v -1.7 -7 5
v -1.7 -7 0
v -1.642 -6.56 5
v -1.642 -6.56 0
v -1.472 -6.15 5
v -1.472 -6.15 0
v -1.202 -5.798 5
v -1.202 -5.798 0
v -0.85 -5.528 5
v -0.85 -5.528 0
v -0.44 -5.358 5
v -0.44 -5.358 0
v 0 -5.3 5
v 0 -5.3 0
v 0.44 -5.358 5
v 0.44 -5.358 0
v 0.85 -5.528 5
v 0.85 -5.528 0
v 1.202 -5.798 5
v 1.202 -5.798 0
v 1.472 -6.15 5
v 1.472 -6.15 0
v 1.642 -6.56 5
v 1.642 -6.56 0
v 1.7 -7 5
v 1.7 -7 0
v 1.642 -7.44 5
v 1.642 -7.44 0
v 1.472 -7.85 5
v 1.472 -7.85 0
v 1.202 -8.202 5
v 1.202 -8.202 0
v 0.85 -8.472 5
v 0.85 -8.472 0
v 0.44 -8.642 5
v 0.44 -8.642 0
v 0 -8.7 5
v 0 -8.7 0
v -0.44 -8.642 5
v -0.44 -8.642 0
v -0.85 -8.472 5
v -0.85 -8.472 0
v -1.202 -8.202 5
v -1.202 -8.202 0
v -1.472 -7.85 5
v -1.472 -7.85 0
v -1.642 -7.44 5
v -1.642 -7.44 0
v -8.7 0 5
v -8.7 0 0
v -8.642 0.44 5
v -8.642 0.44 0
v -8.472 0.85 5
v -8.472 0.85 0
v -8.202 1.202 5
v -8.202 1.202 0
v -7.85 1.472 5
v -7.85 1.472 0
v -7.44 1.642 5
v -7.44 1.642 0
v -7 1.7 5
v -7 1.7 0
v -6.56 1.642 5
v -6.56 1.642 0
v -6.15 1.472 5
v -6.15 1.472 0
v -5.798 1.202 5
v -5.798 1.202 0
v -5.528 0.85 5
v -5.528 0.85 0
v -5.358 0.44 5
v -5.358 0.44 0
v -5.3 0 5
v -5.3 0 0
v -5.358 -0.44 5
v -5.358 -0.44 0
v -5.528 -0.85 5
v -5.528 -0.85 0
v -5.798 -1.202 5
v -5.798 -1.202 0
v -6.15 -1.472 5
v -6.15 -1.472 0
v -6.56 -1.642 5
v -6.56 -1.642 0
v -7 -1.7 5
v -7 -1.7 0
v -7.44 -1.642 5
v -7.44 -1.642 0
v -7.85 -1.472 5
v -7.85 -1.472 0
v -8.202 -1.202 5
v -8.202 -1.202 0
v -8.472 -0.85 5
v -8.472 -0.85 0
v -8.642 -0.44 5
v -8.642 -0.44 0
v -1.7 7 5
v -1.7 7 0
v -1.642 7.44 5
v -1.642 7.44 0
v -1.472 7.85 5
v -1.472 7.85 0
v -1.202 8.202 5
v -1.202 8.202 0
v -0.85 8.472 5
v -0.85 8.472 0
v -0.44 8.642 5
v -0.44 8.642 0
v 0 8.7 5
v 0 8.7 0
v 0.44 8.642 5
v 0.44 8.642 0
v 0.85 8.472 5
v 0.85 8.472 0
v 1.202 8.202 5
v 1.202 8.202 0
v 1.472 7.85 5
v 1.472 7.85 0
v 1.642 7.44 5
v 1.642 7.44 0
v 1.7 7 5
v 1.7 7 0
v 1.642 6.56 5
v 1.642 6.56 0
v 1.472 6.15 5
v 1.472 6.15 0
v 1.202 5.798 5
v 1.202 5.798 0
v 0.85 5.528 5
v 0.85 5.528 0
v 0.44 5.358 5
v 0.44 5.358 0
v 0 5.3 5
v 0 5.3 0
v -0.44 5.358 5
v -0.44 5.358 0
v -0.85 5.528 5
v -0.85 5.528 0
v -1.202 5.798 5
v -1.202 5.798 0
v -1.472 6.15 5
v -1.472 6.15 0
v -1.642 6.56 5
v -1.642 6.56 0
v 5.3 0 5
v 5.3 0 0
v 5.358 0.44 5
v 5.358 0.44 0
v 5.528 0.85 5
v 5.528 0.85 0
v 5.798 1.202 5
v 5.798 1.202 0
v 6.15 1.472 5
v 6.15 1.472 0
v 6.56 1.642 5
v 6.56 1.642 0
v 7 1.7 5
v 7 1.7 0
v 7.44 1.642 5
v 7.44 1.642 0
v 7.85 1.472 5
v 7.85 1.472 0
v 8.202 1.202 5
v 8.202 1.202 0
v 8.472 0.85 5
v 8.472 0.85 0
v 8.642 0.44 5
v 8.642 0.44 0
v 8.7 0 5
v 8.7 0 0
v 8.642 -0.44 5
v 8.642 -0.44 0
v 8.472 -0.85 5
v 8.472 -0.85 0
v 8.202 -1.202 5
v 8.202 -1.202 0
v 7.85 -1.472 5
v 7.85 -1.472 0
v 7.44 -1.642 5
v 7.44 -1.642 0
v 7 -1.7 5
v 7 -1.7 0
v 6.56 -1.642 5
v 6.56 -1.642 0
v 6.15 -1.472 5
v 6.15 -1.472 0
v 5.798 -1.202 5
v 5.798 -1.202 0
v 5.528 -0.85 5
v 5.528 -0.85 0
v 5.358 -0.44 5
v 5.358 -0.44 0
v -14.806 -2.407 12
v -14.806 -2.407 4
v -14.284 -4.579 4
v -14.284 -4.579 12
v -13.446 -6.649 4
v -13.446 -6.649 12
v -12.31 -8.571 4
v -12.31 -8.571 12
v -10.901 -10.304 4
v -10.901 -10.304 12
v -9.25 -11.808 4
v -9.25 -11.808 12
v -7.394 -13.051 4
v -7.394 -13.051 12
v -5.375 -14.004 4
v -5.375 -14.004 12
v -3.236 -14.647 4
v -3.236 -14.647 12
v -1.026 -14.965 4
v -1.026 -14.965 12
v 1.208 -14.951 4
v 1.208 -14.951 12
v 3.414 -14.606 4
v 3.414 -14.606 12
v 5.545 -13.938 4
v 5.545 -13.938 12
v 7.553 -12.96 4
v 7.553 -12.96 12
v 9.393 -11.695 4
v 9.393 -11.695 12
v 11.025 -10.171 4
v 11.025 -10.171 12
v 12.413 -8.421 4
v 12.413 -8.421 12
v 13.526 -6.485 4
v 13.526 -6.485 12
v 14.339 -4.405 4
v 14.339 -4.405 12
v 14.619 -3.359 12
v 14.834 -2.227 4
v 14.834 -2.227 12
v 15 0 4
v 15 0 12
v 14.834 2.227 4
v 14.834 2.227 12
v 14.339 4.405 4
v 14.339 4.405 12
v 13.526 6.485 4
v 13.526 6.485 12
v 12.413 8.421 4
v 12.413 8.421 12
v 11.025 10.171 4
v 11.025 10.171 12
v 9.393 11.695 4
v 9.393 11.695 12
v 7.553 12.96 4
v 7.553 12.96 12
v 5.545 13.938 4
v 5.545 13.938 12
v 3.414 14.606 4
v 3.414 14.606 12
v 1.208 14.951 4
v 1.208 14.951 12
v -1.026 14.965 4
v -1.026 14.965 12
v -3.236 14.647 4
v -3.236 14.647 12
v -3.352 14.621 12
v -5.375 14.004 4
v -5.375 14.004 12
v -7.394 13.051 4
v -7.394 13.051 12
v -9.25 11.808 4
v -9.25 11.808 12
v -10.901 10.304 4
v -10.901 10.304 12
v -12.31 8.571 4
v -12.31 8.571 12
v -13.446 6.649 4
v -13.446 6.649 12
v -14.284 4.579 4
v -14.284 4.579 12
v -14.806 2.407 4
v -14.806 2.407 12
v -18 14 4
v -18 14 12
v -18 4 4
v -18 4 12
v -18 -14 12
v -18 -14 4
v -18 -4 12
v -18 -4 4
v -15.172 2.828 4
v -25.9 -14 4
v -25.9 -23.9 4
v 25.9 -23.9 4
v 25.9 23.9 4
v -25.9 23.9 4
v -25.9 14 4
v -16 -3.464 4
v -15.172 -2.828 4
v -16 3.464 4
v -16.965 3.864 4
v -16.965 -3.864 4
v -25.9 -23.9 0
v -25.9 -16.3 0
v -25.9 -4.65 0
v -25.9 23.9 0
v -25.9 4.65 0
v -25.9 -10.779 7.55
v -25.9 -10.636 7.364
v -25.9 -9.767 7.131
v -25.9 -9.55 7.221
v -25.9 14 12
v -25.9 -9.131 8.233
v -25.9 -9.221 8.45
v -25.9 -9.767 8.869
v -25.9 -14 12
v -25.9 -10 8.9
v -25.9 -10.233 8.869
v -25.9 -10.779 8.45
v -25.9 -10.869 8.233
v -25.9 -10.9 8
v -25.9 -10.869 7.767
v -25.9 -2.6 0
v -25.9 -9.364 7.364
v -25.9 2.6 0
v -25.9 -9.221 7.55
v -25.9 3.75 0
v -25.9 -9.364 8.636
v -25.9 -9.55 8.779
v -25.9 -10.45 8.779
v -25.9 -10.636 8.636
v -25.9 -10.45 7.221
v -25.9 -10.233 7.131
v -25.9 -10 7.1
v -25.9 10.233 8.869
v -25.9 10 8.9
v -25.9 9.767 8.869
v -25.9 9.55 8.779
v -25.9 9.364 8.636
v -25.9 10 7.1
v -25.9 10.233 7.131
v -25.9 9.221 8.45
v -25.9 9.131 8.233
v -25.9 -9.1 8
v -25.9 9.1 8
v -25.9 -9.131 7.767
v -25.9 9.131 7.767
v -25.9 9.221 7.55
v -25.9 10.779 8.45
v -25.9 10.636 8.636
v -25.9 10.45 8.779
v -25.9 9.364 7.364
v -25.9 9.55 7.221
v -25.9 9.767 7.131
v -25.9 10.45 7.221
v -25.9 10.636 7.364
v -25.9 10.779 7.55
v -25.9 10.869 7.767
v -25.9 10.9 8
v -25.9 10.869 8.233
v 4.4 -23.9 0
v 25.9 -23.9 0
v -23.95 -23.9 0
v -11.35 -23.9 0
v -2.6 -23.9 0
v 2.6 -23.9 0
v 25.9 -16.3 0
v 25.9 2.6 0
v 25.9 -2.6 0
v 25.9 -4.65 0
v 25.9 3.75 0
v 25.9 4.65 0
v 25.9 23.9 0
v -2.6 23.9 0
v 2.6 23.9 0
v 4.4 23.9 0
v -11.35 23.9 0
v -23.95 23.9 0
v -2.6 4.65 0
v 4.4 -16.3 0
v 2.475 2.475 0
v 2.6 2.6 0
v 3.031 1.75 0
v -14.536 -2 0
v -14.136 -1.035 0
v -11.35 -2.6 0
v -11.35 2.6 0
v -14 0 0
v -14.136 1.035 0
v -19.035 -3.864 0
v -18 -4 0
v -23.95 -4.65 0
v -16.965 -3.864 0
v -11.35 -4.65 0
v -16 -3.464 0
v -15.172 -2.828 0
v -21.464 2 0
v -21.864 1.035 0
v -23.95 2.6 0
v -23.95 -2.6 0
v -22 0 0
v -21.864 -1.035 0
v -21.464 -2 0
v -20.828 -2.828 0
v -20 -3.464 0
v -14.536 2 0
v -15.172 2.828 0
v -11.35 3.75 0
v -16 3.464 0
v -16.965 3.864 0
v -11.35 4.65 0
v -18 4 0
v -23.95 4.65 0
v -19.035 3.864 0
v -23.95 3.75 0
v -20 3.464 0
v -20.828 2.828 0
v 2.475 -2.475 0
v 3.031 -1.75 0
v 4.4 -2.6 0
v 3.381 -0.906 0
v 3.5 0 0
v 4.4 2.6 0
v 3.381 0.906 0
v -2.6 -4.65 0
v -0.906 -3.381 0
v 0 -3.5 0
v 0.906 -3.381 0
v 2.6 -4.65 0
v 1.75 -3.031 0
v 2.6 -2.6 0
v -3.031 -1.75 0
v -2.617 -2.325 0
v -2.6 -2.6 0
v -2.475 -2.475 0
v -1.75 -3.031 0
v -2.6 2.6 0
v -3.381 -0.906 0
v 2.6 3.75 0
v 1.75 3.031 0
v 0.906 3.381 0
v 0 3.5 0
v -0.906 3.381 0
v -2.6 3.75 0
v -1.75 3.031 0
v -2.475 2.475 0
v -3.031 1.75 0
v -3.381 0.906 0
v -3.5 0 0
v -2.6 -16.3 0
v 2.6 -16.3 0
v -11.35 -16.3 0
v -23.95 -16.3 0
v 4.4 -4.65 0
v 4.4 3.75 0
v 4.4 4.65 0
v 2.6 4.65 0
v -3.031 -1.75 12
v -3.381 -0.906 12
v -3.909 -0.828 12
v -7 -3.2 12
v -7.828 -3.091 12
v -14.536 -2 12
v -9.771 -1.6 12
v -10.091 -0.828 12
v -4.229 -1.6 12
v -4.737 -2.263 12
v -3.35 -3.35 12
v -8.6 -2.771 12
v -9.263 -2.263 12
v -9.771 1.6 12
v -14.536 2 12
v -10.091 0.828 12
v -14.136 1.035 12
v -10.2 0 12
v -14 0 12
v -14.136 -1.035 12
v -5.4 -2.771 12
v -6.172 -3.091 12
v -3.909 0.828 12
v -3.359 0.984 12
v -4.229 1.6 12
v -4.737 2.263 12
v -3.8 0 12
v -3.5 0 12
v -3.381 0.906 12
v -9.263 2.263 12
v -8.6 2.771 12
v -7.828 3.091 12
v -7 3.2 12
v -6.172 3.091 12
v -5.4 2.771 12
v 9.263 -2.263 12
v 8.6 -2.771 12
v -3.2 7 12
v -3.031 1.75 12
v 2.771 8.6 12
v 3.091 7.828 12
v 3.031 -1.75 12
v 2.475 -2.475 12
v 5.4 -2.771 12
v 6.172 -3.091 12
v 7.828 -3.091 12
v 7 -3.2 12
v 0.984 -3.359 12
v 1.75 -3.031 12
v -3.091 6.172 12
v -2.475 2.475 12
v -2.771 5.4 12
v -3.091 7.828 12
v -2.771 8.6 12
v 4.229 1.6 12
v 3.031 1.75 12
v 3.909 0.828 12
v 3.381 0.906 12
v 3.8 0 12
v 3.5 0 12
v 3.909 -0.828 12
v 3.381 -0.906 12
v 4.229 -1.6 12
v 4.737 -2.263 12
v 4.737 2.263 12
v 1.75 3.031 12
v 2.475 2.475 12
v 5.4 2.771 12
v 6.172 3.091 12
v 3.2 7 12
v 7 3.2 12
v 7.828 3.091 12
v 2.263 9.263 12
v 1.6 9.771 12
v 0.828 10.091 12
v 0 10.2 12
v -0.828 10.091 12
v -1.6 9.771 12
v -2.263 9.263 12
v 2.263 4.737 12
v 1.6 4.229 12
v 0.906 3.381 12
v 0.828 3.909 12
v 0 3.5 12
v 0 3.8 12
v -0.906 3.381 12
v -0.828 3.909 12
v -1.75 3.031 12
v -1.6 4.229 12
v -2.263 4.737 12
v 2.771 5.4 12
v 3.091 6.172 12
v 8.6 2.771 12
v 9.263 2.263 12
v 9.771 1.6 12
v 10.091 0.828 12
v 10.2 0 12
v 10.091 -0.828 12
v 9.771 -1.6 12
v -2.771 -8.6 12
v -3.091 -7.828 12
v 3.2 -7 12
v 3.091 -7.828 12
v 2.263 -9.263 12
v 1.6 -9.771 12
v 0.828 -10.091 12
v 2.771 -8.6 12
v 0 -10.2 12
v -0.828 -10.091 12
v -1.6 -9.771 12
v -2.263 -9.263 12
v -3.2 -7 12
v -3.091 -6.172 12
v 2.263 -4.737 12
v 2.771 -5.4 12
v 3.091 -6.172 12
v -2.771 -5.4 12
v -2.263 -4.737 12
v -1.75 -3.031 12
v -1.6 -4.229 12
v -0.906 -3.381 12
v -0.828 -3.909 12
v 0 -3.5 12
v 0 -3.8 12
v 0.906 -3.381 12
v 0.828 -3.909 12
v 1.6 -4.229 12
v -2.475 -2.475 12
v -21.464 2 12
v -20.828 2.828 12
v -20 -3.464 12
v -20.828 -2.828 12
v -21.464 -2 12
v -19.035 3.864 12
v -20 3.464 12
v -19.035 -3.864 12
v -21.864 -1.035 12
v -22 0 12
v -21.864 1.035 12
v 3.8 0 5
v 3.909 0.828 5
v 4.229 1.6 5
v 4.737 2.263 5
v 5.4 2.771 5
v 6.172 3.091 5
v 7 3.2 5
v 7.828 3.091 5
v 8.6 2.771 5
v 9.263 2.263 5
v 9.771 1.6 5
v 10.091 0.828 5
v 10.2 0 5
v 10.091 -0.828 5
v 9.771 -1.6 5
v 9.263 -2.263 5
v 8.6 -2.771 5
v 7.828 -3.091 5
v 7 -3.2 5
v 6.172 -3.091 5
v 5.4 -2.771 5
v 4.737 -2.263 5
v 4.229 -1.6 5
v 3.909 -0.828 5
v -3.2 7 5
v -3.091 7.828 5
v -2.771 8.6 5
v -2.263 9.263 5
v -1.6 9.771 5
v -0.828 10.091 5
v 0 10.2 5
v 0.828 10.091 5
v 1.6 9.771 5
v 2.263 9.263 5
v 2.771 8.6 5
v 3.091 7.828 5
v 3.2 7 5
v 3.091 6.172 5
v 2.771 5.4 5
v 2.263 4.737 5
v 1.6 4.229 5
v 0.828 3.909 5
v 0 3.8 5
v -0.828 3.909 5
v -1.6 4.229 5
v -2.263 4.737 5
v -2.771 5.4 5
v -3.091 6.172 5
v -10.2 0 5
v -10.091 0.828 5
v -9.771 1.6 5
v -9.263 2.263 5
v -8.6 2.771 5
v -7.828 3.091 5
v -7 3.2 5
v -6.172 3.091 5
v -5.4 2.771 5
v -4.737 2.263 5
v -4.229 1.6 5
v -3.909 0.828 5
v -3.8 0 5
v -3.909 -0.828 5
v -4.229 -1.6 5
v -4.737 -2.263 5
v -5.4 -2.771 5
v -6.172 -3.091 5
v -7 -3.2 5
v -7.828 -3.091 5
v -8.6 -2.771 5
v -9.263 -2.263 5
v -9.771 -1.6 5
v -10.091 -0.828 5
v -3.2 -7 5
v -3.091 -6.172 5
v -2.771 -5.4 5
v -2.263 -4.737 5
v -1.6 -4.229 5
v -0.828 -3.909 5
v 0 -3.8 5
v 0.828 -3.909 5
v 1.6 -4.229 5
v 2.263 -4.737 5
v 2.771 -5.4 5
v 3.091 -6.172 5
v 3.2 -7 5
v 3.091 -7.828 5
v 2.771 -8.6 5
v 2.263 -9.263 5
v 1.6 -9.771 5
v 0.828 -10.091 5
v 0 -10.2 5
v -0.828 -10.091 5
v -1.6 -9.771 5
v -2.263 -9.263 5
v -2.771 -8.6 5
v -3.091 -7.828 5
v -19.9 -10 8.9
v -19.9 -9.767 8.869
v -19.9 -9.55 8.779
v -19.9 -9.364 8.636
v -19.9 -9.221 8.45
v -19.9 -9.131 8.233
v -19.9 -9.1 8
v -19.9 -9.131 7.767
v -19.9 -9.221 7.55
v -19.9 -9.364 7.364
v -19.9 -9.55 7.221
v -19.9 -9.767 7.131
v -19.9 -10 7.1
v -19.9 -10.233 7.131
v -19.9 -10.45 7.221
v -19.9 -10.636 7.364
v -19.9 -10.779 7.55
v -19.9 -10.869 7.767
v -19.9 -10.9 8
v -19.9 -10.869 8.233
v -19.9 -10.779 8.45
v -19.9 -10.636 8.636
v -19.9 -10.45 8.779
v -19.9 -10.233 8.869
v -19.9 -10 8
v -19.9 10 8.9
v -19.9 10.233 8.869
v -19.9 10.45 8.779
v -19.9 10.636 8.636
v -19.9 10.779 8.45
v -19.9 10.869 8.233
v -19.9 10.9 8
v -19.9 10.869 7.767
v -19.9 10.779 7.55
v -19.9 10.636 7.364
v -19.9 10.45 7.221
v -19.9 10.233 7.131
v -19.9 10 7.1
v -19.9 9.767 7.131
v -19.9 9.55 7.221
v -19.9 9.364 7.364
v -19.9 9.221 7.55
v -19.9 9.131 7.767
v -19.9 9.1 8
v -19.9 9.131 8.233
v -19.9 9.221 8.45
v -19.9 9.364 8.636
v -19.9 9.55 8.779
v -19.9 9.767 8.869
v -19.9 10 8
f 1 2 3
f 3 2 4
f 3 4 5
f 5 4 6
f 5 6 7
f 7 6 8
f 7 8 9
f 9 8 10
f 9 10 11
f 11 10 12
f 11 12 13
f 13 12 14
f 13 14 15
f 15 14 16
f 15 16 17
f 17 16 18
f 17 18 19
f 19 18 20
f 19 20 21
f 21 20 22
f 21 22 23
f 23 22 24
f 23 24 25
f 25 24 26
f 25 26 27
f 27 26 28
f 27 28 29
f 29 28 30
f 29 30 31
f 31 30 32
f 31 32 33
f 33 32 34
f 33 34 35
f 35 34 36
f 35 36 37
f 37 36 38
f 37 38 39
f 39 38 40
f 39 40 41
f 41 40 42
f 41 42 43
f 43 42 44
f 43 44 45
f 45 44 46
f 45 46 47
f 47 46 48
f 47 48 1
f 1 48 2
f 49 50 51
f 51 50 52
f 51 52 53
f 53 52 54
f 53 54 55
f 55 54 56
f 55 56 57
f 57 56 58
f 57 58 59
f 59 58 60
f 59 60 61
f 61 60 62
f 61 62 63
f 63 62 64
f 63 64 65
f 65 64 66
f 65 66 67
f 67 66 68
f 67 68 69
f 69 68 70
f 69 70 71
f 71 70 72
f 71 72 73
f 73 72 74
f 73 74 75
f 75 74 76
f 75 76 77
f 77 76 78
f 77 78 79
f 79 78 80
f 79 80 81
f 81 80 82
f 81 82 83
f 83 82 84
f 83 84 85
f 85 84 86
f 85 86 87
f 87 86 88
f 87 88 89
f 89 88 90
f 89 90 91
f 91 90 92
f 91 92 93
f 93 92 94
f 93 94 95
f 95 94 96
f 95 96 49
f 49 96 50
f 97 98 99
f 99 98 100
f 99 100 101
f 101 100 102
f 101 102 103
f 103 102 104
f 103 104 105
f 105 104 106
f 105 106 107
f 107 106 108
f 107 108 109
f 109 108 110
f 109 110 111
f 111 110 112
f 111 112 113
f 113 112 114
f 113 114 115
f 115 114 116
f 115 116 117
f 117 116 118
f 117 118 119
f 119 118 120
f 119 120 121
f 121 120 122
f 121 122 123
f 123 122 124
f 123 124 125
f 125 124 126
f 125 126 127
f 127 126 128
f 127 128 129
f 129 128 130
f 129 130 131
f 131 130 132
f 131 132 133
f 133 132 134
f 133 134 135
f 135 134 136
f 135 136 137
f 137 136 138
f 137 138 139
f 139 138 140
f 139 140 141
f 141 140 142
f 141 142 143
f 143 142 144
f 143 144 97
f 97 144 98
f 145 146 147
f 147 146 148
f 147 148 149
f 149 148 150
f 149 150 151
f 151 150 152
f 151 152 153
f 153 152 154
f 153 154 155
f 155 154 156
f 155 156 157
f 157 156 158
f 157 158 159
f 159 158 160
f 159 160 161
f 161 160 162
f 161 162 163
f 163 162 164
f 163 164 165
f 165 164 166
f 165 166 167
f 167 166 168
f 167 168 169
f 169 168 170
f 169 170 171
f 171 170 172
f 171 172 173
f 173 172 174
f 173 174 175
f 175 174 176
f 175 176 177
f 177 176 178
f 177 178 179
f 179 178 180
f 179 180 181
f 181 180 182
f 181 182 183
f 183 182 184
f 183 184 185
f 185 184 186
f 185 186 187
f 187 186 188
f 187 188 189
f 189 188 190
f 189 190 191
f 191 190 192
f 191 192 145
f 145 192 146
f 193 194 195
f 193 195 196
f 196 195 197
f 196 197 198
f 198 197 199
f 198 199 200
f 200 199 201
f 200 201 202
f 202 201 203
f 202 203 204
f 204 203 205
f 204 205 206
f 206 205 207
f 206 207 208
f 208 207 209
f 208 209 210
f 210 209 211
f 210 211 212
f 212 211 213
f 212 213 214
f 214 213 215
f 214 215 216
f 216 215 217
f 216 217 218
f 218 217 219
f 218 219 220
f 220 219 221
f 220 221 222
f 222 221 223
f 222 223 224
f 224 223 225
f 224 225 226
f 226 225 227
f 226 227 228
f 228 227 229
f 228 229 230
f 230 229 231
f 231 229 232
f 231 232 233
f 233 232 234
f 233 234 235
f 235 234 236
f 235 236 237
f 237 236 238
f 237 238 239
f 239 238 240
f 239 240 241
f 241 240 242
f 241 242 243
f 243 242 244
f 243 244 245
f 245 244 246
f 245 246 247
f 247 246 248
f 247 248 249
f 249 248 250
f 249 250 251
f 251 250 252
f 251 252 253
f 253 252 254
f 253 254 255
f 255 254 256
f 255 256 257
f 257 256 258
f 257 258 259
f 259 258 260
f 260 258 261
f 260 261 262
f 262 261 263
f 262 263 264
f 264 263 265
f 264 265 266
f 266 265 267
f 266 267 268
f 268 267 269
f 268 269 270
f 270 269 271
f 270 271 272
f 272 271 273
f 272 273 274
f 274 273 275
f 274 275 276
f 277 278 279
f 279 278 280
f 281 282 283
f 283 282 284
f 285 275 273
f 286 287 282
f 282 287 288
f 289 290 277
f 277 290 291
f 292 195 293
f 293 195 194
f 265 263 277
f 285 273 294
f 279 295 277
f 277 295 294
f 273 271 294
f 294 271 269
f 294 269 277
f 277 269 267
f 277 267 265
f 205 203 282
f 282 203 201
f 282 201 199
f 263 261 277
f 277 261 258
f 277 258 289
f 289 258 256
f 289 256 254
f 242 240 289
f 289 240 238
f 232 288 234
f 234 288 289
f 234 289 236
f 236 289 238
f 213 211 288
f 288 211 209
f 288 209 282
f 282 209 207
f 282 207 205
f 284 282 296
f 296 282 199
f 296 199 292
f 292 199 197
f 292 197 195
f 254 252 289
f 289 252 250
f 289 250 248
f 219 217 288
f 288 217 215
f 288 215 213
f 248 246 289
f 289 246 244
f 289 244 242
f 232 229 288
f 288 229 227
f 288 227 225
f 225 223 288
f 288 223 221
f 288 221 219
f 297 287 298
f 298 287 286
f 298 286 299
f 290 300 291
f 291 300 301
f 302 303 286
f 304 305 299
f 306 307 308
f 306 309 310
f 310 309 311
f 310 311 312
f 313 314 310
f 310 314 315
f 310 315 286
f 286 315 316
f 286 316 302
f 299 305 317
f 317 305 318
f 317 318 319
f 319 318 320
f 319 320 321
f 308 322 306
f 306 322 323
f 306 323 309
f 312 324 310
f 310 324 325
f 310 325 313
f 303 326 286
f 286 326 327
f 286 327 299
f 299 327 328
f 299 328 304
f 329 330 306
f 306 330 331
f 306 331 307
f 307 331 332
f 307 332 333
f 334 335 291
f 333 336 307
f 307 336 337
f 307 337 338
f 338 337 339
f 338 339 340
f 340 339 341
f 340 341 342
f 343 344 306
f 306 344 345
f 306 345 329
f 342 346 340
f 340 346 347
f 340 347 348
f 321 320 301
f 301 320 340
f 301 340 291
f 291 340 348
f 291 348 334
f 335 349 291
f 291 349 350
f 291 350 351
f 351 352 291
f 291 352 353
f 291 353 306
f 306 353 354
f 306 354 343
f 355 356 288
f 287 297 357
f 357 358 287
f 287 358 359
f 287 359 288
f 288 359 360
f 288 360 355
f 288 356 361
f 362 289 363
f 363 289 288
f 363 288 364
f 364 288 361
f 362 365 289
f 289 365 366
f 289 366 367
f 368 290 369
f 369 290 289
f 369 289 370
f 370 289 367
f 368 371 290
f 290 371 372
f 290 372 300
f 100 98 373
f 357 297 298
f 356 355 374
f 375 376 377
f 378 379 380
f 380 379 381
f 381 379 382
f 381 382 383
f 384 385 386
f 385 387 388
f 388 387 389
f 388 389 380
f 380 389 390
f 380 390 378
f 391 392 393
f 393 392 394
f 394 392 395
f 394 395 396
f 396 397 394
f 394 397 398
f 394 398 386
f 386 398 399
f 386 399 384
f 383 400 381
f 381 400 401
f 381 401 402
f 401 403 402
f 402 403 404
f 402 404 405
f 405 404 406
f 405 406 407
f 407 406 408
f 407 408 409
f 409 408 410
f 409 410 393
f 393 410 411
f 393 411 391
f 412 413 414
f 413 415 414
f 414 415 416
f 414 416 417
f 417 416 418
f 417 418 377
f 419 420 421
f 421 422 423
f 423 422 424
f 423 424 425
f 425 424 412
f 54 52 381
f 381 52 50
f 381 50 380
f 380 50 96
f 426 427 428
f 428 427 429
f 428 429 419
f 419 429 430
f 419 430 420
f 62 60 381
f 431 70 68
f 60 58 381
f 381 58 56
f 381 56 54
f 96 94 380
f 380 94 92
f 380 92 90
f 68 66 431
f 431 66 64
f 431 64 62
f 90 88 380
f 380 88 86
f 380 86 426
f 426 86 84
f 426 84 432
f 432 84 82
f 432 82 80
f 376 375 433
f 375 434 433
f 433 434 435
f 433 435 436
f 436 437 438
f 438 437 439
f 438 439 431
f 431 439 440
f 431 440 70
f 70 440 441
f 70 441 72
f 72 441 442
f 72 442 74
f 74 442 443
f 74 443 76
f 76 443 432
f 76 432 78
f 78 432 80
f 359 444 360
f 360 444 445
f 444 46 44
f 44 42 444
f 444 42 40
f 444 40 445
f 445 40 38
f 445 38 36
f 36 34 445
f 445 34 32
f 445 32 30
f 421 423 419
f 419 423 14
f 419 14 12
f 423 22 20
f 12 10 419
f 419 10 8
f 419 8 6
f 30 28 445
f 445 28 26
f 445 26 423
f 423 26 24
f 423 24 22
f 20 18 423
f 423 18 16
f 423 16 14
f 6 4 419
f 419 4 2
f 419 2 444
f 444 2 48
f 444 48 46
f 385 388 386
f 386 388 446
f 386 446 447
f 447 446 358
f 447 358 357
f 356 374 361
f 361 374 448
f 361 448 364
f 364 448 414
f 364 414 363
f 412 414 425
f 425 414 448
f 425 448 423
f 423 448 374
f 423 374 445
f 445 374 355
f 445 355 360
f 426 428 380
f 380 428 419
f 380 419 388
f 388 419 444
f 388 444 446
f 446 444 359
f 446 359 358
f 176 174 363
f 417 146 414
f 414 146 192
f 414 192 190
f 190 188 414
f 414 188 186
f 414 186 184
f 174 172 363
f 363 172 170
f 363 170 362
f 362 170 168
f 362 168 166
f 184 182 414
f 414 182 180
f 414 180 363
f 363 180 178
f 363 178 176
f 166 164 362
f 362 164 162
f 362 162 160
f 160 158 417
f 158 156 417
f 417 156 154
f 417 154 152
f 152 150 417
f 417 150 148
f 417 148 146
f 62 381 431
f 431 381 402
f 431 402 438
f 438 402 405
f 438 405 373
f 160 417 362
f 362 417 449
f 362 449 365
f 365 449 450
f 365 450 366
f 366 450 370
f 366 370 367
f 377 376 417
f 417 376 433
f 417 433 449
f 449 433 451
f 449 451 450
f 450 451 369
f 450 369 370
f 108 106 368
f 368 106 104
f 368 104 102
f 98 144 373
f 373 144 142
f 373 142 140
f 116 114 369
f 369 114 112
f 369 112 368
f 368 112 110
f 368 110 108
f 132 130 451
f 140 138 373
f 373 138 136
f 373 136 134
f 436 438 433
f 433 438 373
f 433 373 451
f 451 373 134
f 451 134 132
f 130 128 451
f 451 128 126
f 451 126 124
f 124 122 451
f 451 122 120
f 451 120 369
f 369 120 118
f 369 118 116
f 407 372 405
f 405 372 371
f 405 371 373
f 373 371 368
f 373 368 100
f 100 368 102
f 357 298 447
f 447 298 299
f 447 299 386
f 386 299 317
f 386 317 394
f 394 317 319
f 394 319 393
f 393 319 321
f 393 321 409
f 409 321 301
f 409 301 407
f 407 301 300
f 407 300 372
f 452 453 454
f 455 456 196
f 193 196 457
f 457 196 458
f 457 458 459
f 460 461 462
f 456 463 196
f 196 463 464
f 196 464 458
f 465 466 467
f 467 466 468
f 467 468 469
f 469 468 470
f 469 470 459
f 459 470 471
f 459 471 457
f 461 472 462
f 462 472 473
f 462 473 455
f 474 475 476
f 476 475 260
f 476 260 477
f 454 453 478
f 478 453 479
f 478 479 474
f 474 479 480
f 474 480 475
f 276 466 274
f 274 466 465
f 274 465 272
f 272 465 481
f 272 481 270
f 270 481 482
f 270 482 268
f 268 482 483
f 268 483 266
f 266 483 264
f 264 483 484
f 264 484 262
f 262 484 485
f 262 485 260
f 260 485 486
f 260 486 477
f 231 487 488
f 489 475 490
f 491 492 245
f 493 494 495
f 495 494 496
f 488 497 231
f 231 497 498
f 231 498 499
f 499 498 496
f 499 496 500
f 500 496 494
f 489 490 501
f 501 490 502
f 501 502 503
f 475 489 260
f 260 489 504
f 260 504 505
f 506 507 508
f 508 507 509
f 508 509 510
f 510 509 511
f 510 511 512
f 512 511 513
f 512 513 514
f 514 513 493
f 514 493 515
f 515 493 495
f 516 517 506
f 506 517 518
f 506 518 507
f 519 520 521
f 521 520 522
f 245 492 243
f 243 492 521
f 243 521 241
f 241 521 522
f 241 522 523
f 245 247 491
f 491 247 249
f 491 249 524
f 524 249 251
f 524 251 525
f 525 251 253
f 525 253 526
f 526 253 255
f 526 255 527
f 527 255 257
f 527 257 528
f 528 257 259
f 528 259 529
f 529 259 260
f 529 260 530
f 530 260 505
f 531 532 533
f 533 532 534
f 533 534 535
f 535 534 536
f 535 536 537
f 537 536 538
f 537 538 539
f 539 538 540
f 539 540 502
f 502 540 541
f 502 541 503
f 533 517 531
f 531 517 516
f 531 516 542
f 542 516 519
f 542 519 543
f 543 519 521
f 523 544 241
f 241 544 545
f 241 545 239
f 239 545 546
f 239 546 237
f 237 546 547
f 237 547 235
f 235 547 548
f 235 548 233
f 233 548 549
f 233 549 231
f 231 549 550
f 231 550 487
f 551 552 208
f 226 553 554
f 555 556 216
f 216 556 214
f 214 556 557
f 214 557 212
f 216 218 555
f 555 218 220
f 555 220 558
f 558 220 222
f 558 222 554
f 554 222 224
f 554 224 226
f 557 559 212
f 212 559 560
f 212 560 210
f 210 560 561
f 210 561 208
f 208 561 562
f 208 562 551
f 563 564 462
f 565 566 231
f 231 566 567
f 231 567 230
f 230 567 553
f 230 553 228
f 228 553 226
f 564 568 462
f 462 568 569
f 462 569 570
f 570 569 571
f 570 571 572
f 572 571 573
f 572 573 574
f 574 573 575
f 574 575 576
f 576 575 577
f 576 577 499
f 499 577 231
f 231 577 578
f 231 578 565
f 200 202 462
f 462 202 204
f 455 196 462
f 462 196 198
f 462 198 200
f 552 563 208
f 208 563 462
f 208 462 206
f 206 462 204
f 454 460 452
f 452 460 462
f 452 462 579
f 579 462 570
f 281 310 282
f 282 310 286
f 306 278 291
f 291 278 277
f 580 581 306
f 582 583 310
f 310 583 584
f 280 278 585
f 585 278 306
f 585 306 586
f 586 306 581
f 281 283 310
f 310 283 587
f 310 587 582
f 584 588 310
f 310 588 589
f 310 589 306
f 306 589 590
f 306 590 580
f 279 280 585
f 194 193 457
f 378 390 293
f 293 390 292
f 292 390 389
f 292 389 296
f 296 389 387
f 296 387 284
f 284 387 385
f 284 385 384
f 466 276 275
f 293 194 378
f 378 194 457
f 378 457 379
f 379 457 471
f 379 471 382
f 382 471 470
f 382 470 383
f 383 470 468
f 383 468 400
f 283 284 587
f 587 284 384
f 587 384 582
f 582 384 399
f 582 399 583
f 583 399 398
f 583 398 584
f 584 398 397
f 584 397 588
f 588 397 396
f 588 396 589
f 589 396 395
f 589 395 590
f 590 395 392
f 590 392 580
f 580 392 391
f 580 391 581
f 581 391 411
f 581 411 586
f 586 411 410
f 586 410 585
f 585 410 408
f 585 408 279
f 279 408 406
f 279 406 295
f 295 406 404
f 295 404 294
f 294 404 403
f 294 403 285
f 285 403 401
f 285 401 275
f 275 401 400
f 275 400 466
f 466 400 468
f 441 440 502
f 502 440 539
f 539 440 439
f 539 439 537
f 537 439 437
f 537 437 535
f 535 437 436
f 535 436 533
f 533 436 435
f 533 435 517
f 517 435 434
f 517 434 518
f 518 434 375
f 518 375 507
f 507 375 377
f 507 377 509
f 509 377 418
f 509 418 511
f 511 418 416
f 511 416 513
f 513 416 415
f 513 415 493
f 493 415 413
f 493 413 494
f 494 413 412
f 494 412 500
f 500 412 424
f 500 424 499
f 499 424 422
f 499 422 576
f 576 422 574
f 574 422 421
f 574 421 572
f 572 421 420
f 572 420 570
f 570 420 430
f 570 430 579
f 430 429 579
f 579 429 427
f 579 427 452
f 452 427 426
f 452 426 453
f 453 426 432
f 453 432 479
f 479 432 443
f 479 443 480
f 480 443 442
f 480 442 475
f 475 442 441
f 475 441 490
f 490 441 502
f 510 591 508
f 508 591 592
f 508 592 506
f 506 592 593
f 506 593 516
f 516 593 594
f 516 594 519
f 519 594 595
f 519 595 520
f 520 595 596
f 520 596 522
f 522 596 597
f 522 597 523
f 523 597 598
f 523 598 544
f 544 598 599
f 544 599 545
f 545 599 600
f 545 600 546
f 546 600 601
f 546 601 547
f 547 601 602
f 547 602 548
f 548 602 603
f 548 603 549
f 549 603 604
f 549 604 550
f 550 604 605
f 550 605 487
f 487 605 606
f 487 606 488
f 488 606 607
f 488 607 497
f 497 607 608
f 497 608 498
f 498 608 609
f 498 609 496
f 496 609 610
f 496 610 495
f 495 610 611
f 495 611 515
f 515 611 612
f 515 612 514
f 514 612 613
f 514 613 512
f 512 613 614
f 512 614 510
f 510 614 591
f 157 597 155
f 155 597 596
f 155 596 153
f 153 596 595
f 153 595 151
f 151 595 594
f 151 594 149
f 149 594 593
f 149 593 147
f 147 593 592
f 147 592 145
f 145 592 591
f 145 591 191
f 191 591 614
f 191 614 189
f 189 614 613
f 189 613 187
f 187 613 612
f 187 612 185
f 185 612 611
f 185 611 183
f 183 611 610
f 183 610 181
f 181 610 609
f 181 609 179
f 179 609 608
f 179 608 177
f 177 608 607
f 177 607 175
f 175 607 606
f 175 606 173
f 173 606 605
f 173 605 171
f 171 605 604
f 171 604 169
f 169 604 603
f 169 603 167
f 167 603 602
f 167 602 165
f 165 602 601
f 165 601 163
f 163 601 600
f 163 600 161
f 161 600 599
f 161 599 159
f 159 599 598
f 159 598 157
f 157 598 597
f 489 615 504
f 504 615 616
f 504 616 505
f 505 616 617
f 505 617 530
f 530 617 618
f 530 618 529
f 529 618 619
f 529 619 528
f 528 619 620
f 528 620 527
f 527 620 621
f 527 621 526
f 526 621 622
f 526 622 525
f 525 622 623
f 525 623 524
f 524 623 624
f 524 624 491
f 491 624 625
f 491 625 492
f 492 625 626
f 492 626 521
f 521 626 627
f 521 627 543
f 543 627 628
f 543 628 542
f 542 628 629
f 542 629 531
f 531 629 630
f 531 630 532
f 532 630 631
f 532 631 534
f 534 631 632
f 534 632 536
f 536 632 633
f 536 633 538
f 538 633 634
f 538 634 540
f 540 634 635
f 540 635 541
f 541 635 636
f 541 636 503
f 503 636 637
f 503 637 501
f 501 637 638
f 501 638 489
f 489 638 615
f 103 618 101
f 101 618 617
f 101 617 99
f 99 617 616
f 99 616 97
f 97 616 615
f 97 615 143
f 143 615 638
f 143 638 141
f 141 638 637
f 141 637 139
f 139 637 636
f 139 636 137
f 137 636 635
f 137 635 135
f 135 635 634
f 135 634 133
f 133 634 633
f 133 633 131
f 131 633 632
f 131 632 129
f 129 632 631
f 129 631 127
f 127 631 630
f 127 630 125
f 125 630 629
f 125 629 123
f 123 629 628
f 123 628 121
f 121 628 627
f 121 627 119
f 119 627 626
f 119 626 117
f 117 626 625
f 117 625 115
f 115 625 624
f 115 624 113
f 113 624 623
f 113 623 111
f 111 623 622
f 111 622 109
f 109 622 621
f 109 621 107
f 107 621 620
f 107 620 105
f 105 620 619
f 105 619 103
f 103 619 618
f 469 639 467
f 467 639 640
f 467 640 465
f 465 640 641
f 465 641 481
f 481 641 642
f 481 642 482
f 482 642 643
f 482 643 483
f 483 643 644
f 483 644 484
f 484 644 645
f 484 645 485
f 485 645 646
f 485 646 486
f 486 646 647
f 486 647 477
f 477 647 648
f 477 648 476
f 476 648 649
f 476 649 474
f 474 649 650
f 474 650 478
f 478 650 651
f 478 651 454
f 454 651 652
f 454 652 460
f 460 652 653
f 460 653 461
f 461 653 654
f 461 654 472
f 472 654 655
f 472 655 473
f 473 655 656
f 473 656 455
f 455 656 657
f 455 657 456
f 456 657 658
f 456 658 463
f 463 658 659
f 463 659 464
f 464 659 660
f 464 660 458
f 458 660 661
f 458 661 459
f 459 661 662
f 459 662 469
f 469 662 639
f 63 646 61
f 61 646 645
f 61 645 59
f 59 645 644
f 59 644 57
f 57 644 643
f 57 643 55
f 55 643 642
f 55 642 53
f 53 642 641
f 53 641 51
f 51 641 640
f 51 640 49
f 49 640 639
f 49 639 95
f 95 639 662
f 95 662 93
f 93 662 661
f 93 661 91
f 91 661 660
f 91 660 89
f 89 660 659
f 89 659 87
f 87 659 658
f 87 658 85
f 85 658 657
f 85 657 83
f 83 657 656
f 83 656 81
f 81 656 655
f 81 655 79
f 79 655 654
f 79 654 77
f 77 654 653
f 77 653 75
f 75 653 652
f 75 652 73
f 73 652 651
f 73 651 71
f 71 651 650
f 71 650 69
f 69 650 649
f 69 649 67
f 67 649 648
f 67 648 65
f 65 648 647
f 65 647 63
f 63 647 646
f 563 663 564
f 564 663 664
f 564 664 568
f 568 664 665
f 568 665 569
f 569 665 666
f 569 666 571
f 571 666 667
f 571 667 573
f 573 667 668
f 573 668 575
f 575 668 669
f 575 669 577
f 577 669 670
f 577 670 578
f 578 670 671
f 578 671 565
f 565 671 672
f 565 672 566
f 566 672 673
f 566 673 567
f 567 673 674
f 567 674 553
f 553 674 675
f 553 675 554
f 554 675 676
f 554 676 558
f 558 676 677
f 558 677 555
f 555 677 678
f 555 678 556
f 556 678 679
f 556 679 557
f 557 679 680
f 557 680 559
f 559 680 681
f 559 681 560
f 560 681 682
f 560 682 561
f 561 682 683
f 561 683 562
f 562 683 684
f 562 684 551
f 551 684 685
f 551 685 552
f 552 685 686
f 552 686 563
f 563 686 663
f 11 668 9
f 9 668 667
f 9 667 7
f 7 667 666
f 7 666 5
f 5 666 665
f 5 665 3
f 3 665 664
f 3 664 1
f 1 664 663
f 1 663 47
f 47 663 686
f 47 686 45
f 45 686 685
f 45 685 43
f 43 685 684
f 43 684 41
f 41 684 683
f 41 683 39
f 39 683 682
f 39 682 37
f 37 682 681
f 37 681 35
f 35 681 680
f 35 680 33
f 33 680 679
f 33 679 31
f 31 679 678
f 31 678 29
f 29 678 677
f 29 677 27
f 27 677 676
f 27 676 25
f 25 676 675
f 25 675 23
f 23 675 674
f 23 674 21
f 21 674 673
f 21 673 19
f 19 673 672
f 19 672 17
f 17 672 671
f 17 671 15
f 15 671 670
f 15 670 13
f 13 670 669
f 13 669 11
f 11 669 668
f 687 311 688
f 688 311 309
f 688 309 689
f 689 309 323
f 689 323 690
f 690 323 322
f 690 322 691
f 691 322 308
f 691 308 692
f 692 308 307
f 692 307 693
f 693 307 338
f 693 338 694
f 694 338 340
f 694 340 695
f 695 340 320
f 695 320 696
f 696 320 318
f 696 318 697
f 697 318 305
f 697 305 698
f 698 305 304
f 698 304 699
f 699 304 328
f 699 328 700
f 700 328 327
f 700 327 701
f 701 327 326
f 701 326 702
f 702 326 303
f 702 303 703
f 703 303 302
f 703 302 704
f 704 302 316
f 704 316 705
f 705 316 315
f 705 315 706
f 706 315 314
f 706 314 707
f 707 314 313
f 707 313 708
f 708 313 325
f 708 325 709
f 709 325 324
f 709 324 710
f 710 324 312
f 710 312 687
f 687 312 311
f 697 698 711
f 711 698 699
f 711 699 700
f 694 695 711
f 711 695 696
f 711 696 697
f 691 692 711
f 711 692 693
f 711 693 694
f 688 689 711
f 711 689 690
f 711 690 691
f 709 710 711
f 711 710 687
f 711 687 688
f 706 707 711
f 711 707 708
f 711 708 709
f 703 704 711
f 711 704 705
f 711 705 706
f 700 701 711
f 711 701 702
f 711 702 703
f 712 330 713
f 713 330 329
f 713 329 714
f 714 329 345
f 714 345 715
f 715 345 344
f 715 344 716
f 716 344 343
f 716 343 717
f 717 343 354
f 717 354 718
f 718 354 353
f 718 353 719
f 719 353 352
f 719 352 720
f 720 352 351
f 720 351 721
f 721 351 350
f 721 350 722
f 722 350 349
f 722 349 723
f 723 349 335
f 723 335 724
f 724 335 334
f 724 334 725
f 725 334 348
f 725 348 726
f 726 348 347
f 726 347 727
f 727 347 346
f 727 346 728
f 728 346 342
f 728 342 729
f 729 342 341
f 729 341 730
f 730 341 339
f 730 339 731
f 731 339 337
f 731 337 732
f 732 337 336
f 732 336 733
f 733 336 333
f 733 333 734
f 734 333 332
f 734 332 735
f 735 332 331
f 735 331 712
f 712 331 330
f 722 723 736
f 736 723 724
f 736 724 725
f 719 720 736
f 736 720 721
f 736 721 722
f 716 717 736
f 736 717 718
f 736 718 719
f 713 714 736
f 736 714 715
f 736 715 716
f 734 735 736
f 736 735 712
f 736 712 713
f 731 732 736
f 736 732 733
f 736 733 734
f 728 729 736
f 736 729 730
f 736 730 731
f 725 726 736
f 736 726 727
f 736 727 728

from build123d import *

# Parameters (mm, degrees)
S_BOX1_W      = 51.8
S_BOX1_H      = 47.8
BOSS_1_DEPTH  = 4
S_CYL2_R      = 15
BOSS_2_DEPTH  = 8.1
S_BOX3_W      = 7.9
S_BOX3_H      = 28
BOSS_3_DEPTH  = 8.1
S_HOLE4_R     = 4
HOLE_4_DEPTH  = 12.2
S_HOLE5_R     = 3.5
HOLE_5_DEPTH  = 12.2
S_HOLE6_R     = 1.7
HOLE_6_DEPTH  = 12.2
S_HOLE7_R     = 1.7
HOLE_7_DEPTH  = 12.2
S_HOLE8_R     = 1.7
HOLE_8_DEPTH  = 12.2
S_HOLE9_R     = 1.7
HOLE_9_DEPTH  = 12.2
S_HOLE10_R    = 3.2
HOLE_10_DEPTH = 7.1
S_HOLE11_R    = 3.2
HOLE_11_DEPTH = 7.1
S_HOLE12_R    = 3.2
HOLE_12_DEPTH = 7.1
S_HOLE13_R    = 3.2
HOLE_13_DEPTH = 7.1
S_HOLE14_R    = 0.9
HOLE_14_DEPTH = 6.1
S_HOLE15_R    = 0.9
HOLE_15_DEPTH = 6.1


with BuildPart() as part:
    # S_box1 → Boss_1 (new body)
    with BuildSketch(Plane.XY):
        Rectangle(S_BOX1_W, S_BOX1_H)
    extrude(amount=BOSS_1_DEPTH)

    # S_cyl2 → Boss_2 (add)
    with BuildSketch(Plane.XY.offset(3.9)):
        Circle(S_CYL2_R)
    extrude(amount=BOSS_2_DEPTH)

    # S_box3 → Boss_3 (add)
    with BuildSketch(Plane.XY.offset(3.9)):
        with Locations((-21.95, 0)):
            Rectangle(S_BOX3_W, S_BOX3_H)
    extrude(amount=BOSS_3_DEPTH)

    # S_hole4 → Hole_4 (cut)
    with BuildSketch(Plane.XY.offset(-0.1)):
        with Locations(Location((-18, 0, 0), (0, 0, 270))):
            Circle(S_HOLE4_R)
    extrude(amount=HOLE_4_DEPTH, mode=Mode.SUBTRACT)

    # S_hole5 → Hole_5 (cut)
    with BuildSketch(Plane.XY.offset(-0.1)):
        Circle(S_HOLE5_R)
    extrude(amount=HOLE_5_DEPTH, mode=Mode.SUBTRACT)

    # S_hole6 → Hole_6 (cut)
    with BuildSketch(Plane.XY.offset(-0.1)):
        with Locations((7, 0)):
            Circle(S_HOLE6_R)
    extrude(amount=HOLE_6_DEPTH, mode=Mode.SUBTRACT)

    # S_hole7 → Hole_7 (cut)
    with BuildSketch(Plane.XY.offset(-0.1)):
        with Locations((0, 7)):
            Circle(S_HOLE7_R)
    extrude(amount=HOLE_7_DEPTH, mode=Mode.SUBTRACT)

    # S_hole8 → Hole_8 (cut)
    with BuildSketch(Plane.XY.offset(-0.1)):
        with Locations((-7, 0)):
            Circle(S_HOLE8_R)
    extrude(amount=HOLE_8_DEPTH, mode=Mode.SUBTRACT)

    # S_hole9 → Hole_9 (cut)
    with BuildSketch(Plane.XY.offset(-0.1)):
        with Locations((0, -7)):
            Circle(S_HOLE9_R)
    extrude(amount=HOLE_9_DEPTH, mode=Mode.SUBTRACT)

    # S_hole10 → Hole_10 (cut)
    with BuildSketch(Plane.XY.offset(5)):
        with Locations((7, 0)):
            Circle(S_HOLE10_R)
    extrude(amount=HOLE_10_DEPTH, mode=Mode.SUBTRACT)

    # S_hole11 → Hole_11 (cut)
    with BuildSketch(Plane.XY.offset(5)):
        with Locations((0, 7)):
            Circle(S_HOLE11_R)
    extrude(amount=HOLE_11_DEPTH, mode=Mode.SUBTRACT)

    # S_hole12 → Hole_12 (cut)
    with BuildSketch(Plane.XY.offset(5)):
        with Locations((-7, 0)):
            Circle(S_HOLE12_R)
    extrude(amount=HOLE_12_DEPTH, mode=Mode.SUBTRACT)

    # S_hole13 → Hole_13 (cut)
    with BuildSketch(Plane.XY.offset(5)):
        with Locations((0, -7)):
            Circle(S_HOLE13_R)
    extrude(amount=HOLE_13_DEPTH, mode=Mode.SUBTRACT)

    # S_hole14 → Hole_14 (cut)
    with BuildSketch(Plane(origin=(-26, 0, 0), x_dir=(0, 0, -1), z_dir=(1, 0, 0))):
        with Locations((-8, -10)):
            Circle(S_HOLE14_R)
    extrude(amount=HOLE_14_DEPTH, mode=Mode.SUBTRACT)

    # S_hole15 → Hole_15 (cut)
    with BuildSketch(Plane(origin=(-26, 0, 0), x_dir=(0, 0, -1), z_dir=(1, 0, 0))):
        with Locations((-8, 10)):
            Circle(S_HOLE15_R)
    extrude(amount=HOLE_15_DEPTH, mode=Mode.SUBTRACT)


solid = part.part
